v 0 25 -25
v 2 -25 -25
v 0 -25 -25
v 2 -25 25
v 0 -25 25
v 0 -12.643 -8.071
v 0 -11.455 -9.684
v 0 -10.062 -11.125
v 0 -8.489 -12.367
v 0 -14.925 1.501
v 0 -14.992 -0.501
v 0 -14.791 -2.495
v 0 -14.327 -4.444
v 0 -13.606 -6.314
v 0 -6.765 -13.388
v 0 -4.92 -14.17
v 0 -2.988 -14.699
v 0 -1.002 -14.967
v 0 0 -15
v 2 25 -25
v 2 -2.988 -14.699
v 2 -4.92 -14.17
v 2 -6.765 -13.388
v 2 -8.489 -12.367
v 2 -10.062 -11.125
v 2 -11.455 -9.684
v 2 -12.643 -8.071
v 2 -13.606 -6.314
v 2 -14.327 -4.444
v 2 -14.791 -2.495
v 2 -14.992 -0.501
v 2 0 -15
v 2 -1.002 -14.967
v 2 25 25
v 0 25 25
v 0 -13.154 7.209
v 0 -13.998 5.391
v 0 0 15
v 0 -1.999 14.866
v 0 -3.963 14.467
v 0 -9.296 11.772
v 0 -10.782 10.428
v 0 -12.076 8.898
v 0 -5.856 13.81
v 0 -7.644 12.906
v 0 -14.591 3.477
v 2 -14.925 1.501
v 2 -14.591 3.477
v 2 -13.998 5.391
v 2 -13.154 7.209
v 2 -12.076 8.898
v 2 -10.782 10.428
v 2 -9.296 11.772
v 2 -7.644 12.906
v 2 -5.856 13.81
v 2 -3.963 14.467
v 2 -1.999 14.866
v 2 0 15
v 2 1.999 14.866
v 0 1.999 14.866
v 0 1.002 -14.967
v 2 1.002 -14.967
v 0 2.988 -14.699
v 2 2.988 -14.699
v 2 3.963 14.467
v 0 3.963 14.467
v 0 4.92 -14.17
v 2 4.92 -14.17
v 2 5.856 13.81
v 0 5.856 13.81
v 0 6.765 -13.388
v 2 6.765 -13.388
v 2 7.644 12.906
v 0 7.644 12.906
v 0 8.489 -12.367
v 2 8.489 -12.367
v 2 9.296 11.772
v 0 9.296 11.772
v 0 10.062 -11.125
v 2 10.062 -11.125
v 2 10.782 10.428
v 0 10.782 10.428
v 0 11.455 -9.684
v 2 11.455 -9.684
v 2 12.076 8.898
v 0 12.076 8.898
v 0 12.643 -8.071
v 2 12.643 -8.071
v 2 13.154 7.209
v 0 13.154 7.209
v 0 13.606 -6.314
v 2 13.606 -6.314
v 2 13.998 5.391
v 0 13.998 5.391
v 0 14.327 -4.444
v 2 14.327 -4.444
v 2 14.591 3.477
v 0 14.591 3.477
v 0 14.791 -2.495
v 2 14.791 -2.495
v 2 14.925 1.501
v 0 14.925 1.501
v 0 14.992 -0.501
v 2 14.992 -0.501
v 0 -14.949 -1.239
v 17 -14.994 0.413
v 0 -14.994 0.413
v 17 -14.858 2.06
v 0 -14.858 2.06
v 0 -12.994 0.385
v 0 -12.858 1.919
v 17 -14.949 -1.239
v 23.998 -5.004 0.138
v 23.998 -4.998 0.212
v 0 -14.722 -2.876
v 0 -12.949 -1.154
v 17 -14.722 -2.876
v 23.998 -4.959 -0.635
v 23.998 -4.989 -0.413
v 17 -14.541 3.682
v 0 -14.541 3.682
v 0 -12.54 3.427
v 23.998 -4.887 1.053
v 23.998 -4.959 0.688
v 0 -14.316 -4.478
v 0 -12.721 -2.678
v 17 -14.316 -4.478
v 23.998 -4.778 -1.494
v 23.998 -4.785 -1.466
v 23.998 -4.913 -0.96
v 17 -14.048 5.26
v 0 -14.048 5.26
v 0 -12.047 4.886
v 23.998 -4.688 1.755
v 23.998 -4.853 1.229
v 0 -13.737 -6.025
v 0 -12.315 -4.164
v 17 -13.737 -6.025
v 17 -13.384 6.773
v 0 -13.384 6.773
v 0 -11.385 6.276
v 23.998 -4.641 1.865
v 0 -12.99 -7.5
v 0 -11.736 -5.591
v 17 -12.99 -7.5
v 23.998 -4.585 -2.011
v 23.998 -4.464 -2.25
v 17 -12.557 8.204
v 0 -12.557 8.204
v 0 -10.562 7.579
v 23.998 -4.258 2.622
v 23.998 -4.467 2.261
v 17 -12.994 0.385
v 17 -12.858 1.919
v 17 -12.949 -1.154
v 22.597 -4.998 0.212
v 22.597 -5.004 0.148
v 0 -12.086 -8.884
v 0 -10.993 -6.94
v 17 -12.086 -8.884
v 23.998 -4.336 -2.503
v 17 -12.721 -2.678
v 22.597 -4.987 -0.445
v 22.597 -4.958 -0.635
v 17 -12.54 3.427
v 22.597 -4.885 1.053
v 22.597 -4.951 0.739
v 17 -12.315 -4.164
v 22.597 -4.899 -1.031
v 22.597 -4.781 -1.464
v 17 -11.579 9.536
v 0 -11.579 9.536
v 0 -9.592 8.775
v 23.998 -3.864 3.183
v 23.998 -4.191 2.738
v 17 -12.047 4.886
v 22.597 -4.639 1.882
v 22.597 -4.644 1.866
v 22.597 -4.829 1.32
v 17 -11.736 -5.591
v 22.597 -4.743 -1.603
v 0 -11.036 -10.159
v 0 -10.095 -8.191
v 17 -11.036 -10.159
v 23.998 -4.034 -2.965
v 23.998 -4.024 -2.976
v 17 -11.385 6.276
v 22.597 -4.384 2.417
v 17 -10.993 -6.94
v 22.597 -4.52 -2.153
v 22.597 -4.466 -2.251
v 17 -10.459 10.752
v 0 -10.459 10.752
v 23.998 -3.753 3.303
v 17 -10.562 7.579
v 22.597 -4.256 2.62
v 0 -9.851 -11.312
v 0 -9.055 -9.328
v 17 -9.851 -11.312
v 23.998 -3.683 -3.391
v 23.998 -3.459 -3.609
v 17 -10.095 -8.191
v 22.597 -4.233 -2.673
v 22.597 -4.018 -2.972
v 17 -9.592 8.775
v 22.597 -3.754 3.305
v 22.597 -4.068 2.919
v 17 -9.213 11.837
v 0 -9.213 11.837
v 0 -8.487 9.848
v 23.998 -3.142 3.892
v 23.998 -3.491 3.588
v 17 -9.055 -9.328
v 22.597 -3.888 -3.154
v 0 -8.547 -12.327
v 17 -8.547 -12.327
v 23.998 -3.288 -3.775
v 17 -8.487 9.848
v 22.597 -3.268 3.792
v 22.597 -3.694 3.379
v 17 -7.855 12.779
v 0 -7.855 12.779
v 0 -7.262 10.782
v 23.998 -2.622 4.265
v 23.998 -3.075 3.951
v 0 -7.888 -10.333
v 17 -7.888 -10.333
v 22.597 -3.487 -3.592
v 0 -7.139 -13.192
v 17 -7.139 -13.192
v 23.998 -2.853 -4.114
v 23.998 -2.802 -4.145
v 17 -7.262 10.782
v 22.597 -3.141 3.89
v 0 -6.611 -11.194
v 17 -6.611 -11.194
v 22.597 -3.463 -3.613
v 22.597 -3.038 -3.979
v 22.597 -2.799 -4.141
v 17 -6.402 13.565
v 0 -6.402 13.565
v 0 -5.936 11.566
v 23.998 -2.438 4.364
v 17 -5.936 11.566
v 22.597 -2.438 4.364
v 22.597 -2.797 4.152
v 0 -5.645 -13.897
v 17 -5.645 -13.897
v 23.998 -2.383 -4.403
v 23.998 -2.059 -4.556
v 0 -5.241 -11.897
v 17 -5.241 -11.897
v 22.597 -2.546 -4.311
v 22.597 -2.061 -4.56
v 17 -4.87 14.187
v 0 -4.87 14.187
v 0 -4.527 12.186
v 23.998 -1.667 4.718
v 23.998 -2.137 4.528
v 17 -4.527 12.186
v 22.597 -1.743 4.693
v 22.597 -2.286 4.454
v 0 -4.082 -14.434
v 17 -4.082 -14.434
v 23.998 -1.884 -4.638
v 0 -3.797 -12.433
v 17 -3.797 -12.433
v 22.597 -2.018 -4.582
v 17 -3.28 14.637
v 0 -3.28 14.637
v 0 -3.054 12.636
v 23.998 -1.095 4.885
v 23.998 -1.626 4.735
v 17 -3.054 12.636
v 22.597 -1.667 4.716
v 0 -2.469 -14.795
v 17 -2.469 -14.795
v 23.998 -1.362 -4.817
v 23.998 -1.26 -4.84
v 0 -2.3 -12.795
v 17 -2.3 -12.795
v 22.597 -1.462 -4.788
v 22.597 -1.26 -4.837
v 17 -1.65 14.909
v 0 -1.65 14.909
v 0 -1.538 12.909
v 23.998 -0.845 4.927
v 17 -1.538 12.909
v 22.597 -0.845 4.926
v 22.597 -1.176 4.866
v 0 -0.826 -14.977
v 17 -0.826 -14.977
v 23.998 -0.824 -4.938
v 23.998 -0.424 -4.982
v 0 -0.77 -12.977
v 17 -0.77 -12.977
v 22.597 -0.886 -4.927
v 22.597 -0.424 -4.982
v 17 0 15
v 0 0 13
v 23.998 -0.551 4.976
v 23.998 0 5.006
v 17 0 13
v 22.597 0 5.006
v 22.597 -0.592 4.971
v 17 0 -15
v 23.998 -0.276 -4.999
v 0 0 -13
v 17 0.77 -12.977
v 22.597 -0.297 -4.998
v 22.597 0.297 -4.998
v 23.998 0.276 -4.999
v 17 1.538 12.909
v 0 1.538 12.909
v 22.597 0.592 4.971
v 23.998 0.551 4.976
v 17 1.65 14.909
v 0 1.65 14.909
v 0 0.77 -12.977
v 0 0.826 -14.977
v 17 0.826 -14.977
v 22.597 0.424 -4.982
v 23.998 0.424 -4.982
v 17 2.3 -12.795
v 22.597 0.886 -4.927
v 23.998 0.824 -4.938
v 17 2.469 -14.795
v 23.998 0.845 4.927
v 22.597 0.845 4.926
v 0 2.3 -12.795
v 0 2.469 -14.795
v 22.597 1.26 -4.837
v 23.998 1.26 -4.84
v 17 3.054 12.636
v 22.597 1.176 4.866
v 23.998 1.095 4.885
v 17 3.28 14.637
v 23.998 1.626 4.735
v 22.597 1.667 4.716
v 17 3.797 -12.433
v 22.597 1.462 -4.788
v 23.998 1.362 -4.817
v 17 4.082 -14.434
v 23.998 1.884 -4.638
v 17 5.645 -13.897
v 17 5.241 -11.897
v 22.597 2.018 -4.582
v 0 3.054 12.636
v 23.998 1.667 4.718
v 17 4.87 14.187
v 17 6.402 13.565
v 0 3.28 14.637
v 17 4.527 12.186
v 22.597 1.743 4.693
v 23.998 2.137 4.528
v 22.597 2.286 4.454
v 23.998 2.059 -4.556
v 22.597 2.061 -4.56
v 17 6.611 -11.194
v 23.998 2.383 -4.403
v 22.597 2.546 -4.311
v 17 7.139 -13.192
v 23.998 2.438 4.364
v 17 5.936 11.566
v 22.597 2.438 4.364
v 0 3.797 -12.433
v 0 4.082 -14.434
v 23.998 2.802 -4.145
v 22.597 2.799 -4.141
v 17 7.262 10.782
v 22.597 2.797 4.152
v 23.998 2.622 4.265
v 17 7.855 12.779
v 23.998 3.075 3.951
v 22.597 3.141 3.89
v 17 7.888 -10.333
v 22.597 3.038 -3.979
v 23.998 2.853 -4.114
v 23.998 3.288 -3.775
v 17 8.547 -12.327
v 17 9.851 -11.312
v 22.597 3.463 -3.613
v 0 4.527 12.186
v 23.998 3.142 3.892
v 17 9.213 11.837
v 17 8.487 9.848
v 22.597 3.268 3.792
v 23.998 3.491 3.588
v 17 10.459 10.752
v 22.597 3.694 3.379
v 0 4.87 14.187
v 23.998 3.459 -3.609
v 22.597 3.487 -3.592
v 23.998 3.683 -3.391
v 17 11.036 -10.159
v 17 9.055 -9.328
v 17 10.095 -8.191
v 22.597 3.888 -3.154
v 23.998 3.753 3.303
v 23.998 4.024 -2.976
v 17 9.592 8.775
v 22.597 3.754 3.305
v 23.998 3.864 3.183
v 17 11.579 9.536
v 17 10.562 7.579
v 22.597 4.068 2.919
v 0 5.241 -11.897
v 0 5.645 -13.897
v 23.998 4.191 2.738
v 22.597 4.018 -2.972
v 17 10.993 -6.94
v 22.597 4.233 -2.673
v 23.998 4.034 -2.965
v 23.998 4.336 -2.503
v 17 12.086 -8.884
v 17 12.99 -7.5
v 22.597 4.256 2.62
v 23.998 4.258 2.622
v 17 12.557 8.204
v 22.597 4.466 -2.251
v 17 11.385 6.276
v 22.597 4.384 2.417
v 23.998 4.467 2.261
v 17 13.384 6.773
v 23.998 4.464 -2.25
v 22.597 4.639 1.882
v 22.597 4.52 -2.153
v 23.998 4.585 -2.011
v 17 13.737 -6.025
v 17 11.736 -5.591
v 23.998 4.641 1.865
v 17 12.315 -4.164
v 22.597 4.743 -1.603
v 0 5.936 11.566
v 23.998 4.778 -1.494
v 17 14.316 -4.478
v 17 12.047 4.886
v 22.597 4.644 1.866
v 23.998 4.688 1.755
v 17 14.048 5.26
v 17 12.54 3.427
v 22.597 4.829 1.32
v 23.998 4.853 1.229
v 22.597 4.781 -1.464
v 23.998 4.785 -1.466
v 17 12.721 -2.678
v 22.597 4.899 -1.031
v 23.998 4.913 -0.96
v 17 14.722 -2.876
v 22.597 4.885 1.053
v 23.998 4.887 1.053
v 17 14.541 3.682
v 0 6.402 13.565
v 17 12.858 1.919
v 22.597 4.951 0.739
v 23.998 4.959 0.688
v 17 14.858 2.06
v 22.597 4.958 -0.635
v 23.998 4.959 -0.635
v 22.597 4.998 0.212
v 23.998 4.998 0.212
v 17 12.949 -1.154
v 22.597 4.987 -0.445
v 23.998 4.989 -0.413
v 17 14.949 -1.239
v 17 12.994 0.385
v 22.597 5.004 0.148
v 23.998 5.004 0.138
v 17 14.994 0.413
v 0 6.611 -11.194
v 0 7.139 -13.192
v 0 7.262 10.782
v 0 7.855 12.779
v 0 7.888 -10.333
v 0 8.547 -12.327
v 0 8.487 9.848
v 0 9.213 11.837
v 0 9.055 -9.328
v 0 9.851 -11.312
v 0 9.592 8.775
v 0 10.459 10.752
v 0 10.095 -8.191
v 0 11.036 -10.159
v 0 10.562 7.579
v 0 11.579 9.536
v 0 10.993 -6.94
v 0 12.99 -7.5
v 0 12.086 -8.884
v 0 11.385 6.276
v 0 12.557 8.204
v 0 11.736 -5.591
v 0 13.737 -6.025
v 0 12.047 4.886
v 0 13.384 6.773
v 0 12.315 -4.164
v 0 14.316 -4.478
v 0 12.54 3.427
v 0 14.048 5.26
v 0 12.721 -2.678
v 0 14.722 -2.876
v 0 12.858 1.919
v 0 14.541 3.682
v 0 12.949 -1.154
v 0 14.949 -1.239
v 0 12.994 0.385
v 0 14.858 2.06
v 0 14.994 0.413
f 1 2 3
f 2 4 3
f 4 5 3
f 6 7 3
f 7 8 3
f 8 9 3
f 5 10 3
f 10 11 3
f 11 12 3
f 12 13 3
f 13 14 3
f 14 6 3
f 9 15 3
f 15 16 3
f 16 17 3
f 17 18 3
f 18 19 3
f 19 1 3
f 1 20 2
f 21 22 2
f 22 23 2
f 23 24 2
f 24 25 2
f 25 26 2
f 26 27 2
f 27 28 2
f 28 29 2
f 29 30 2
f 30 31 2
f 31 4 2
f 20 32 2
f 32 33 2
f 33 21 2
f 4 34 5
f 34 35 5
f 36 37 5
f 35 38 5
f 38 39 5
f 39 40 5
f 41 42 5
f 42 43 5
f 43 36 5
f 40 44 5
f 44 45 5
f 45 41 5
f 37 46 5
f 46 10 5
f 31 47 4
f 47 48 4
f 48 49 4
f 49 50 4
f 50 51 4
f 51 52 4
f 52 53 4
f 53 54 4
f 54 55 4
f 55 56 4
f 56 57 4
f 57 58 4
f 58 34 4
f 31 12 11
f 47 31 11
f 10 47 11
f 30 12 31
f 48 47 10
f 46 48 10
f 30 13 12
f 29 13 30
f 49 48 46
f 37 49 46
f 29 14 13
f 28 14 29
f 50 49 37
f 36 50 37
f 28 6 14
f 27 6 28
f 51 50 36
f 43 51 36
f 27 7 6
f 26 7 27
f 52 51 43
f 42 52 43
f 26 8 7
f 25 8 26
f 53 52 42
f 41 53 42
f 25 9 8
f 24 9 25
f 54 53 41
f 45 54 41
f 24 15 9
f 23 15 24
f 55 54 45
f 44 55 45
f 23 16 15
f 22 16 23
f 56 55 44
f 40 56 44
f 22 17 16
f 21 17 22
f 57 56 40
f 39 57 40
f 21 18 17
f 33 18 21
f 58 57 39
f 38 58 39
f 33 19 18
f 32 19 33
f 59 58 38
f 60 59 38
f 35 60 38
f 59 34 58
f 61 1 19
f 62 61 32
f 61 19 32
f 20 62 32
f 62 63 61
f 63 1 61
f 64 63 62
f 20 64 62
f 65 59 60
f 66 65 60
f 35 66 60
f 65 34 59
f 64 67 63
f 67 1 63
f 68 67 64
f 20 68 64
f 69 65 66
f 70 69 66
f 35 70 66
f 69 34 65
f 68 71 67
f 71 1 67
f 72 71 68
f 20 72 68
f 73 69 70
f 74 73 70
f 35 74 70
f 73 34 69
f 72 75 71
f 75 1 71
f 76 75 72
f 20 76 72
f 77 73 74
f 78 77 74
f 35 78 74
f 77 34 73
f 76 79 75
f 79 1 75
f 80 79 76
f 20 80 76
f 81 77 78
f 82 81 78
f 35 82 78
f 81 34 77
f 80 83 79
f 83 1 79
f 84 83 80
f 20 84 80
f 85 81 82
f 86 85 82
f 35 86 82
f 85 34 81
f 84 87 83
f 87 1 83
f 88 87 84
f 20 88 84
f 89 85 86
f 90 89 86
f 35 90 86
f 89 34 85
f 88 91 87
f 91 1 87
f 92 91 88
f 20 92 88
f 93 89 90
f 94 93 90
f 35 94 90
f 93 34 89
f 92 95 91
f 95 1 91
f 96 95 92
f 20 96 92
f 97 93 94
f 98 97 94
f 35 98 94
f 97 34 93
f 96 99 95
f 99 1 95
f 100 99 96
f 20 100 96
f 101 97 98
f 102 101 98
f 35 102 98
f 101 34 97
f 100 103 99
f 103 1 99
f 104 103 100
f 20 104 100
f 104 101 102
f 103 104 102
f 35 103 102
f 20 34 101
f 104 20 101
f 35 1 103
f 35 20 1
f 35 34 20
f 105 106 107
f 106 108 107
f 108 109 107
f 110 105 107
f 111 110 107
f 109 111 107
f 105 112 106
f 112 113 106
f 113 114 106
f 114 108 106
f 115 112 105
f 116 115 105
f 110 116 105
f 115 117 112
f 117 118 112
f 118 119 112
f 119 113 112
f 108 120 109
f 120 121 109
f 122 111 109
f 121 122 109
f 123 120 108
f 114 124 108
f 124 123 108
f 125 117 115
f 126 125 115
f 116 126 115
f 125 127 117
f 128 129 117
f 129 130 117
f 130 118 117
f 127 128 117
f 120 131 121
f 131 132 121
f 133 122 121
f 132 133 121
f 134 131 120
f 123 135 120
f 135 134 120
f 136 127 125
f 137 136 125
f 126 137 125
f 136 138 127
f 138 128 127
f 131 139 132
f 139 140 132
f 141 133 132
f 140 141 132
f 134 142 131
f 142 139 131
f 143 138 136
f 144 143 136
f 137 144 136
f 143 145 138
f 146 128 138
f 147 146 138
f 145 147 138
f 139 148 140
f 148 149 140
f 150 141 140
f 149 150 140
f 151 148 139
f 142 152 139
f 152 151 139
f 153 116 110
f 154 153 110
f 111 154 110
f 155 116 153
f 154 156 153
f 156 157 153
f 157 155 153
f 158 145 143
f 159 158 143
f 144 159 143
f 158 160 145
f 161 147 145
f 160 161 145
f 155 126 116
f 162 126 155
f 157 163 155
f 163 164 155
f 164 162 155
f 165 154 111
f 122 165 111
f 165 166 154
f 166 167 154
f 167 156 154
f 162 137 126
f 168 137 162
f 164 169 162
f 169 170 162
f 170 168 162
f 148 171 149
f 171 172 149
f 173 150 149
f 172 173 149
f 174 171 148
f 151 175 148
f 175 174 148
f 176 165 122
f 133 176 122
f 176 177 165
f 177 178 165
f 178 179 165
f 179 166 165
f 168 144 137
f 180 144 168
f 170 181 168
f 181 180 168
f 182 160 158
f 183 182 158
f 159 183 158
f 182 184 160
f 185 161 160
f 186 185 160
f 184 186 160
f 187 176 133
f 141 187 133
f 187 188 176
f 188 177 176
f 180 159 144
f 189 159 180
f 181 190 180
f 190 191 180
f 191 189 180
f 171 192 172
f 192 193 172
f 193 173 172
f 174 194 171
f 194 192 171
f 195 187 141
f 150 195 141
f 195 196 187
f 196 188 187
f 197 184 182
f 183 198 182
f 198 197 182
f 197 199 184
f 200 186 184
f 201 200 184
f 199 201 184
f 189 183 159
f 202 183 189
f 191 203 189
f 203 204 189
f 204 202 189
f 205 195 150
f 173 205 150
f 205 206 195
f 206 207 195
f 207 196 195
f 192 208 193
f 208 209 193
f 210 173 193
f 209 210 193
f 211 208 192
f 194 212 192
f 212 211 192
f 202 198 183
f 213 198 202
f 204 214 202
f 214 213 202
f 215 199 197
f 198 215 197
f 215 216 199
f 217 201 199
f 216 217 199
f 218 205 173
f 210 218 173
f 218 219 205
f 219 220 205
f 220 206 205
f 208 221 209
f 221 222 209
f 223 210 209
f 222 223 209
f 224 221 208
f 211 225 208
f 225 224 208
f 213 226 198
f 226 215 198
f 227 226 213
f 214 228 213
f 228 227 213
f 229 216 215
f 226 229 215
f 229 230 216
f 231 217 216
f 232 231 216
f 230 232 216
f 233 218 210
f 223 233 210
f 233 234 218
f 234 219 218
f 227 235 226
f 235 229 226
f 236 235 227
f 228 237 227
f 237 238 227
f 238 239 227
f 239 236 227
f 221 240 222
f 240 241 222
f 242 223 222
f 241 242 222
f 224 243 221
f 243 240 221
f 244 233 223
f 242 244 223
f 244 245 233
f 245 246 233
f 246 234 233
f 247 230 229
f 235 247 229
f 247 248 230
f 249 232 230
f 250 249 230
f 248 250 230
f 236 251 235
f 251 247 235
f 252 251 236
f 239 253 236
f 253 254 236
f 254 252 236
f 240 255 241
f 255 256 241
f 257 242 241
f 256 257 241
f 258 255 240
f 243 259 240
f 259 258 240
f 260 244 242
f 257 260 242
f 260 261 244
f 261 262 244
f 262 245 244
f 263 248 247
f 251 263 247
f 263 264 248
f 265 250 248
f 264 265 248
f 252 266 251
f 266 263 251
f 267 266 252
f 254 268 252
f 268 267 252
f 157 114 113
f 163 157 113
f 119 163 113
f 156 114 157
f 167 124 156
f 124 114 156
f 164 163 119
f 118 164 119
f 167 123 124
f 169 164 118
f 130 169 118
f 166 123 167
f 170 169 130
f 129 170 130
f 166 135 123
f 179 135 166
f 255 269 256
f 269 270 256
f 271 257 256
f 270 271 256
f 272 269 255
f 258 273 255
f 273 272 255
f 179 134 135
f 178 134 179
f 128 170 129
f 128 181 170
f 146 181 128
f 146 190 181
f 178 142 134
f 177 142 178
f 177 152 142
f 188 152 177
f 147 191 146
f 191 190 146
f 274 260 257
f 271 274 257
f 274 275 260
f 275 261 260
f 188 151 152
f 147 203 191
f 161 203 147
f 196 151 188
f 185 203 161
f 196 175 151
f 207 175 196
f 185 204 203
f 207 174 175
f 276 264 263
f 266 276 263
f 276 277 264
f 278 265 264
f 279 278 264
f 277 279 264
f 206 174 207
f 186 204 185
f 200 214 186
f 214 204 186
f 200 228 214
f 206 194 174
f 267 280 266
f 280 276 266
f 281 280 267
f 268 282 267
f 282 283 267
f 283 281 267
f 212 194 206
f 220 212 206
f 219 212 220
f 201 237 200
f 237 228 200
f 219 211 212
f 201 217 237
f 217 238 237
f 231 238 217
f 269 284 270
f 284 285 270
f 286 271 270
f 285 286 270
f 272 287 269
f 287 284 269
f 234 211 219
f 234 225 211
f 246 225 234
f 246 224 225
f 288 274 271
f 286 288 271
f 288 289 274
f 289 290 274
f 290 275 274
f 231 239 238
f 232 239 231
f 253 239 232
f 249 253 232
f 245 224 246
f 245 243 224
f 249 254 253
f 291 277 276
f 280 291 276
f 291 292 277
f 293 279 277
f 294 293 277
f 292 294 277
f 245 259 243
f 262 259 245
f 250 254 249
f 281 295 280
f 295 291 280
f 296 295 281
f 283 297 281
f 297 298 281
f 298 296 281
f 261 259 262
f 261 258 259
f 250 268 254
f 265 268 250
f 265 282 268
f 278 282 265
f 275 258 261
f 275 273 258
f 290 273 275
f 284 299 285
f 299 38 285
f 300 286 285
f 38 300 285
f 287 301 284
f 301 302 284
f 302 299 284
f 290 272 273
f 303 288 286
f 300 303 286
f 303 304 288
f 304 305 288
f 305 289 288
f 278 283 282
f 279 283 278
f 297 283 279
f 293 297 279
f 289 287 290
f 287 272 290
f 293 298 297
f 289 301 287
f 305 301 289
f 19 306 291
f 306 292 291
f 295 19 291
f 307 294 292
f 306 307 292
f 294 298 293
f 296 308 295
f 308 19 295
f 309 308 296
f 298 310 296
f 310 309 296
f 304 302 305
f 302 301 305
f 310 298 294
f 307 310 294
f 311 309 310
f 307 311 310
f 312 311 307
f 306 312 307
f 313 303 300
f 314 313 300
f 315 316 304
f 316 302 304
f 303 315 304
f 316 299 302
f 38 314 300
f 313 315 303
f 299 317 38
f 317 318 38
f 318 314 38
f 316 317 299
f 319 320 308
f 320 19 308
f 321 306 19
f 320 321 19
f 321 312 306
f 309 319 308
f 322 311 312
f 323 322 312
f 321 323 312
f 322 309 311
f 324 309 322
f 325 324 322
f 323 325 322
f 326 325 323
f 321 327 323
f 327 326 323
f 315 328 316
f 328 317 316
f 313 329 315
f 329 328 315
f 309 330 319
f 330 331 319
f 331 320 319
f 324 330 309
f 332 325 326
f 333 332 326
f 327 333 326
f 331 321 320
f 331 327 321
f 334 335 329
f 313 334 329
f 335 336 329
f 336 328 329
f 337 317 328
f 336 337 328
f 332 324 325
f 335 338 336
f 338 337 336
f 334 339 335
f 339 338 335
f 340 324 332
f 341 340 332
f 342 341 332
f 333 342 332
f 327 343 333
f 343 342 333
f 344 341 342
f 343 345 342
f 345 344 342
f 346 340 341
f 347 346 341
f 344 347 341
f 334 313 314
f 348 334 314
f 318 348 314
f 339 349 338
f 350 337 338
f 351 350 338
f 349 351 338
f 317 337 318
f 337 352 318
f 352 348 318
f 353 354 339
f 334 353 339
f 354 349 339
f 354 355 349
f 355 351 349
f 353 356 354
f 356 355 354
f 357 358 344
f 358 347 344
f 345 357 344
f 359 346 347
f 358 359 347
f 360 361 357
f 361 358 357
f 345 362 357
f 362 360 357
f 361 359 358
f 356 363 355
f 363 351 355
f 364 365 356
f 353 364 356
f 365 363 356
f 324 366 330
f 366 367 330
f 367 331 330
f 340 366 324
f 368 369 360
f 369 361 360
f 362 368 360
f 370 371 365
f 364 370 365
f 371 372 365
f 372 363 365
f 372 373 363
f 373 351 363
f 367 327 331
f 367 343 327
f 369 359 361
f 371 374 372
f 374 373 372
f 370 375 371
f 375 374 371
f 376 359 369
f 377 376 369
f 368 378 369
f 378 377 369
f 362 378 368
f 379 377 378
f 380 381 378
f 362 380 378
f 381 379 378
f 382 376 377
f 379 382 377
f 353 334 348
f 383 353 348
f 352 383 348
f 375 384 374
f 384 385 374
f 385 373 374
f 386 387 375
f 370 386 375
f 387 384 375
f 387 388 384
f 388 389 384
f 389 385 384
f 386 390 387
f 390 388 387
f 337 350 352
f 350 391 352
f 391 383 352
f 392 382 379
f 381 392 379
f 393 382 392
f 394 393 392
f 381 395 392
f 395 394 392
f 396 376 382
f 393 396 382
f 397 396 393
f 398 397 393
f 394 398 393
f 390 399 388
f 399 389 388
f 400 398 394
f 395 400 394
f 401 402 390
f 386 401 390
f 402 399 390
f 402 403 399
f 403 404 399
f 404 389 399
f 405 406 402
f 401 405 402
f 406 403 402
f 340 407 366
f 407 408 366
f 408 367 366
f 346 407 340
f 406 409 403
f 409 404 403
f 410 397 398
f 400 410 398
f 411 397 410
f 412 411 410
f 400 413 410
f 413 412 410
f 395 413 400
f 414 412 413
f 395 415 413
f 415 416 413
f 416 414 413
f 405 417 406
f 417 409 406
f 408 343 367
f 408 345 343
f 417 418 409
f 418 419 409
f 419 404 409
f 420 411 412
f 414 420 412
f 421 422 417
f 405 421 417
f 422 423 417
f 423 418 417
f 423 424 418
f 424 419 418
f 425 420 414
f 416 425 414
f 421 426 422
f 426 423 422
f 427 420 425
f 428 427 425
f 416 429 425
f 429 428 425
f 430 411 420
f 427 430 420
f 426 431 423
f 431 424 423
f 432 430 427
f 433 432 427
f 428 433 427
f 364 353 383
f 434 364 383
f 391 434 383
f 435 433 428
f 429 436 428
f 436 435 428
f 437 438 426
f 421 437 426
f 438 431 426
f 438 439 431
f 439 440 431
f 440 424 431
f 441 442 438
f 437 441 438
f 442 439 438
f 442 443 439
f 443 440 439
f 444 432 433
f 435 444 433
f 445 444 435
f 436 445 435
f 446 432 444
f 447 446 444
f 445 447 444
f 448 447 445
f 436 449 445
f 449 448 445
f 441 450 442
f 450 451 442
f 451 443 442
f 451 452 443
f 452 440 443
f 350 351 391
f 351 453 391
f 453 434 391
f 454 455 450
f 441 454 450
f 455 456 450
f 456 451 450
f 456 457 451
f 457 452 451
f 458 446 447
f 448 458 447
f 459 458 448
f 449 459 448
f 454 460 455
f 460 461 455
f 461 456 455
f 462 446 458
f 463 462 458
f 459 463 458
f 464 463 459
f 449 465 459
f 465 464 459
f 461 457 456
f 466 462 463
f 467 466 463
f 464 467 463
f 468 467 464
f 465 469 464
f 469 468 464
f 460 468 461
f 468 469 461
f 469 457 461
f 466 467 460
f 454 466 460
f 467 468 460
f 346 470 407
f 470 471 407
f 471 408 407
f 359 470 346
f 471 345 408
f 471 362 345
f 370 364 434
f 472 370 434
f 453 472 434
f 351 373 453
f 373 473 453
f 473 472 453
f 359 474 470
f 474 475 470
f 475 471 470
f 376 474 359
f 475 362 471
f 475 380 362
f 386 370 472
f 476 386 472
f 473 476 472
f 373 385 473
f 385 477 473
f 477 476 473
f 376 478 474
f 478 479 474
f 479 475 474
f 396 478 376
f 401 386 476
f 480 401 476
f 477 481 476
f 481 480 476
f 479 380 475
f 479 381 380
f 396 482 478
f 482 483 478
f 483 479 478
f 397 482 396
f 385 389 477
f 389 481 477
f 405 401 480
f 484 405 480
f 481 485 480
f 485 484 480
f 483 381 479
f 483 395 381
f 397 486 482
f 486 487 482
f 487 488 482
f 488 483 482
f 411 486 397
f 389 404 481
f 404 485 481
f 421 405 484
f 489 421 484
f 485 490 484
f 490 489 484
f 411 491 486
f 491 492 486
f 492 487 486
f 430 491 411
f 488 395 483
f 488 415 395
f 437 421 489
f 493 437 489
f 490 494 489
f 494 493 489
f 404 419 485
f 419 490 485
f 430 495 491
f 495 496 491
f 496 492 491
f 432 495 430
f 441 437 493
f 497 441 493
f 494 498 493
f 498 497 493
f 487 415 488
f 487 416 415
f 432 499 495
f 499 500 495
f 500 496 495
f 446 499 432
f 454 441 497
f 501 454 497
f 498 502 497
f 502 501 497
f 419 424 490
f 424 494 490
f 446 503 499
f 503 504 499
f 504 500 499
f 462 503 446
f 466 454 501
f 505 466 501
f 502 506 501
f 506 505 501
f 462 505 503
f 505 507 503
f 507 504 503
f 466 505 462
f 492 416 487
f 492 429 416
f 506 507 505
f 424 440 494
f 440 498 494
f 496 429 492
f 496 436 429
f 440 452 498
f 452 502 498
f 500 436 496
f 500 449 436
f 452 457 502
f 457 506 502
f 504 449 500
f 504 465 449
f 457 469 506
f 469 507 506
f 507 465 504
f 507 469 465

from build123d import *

# Parameters (mm, degrees)
SKETCH1_R           = 15
SKETCH1_R_2         = 13
BOSS_EXTRUDE1_DEPTH = 17
SKETCH1_4_W         = 50
SKETCH1_4_H         = 50
SKETCH1_4_R         = 15
BOSS_EXTRUDE2_DEPTH = 2


with BuildPart() as part:
    # Sketch1 → Boss-Extrude1 (new body)
    with BuildSketch(Plane(origin=(0, 0, 0), x_dir=(0, 0, -1), z_dir=(1, 0, 0))):
        Circle(SKETCH1_R)
        Circle(SKETCH1_R_2, mode=Mode.SUBTRACT)
    extrude(amount=BOSS_EXTRUDE1_DEPTH)

    # Sketch5 → Revolve1 (revolve)
    with BuildSketch(Plane(origin=(0, 0, 0), x_dir=(1, 0, 0), z_dir=(0, 1, 0))):
        Polygon((17, 15), (23.997632523, 5.00634506), (22.597217447, 5.00634506), (17, 13), align=None)
    revolve(axis=Axis((-1.32201978, 0, 0), (1, 0, 0)))


with BuildPart() as body_2:
    # Sketch1<4> → Boss-Extrude2 (new body)
    with BuildSketch(Plane(origin=(0, 0, 0), x_dir=(0, 0, -1), z_dir=(1, 0, 0))):
        Rectangle(SKETCH1_4_W, SKETCH1_4_H)
        Circle(SKETCH1_4_R, mode=Mode.SUBTRACT)
    extrude(amount=BOSS_EXTRUDE2_DEPTH)


solid = Compound([part.part, body_2.part])
